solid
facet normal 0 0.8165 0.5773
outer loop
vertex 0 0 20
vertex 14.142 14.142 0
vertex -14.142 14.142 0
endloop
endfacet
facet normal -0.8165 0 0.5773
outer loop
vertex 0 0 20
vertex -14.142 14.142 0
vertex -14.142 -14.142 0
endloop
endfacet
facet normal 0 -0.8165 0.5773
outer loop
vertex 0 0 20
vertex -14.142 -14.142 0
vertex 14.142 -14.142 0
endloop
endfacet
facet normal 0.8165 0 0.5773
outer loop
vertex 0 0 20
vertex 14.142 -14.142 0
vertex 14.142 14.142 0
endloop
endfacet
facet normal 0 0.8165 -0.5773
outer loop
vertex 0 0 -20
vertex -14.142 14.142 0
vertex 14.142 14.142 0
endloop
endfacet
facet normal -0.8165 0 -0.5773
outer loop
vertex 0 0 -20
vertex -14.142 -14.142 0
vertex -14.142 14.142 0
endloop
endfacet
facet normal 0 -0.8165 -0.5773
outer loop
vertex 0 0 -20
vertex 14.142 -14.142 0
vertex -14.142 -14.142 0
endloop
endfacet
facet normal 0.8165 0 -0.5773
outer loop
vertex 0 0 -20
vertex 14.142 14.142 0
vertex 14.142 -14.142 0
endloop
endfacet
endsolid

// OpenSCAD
a = 20;
polyhedron(
    points = [
        [0, 0, a], // 0
        [a/sqrt(2), a/sqrt(2), 0], // 1
        [-a/sqrt(2), a/sqrt(2), 0], // 2
        [-a/sqrt(2), -a/sqrt(2), 0], // 3
		[a/sqrt(2), -a/sqrt(2), 0], // 4
		[0, 0, -a] // 5
    ],
    faces = [
        [0, 1, 2],
		[0, 2, 3],
		[0, 3, 4],
		[0, 4, 1],
		[5, 2, 1],
		[5, 3, 2],
		[5, 4, 3],
		[5, 1, 4]
    ]
);
